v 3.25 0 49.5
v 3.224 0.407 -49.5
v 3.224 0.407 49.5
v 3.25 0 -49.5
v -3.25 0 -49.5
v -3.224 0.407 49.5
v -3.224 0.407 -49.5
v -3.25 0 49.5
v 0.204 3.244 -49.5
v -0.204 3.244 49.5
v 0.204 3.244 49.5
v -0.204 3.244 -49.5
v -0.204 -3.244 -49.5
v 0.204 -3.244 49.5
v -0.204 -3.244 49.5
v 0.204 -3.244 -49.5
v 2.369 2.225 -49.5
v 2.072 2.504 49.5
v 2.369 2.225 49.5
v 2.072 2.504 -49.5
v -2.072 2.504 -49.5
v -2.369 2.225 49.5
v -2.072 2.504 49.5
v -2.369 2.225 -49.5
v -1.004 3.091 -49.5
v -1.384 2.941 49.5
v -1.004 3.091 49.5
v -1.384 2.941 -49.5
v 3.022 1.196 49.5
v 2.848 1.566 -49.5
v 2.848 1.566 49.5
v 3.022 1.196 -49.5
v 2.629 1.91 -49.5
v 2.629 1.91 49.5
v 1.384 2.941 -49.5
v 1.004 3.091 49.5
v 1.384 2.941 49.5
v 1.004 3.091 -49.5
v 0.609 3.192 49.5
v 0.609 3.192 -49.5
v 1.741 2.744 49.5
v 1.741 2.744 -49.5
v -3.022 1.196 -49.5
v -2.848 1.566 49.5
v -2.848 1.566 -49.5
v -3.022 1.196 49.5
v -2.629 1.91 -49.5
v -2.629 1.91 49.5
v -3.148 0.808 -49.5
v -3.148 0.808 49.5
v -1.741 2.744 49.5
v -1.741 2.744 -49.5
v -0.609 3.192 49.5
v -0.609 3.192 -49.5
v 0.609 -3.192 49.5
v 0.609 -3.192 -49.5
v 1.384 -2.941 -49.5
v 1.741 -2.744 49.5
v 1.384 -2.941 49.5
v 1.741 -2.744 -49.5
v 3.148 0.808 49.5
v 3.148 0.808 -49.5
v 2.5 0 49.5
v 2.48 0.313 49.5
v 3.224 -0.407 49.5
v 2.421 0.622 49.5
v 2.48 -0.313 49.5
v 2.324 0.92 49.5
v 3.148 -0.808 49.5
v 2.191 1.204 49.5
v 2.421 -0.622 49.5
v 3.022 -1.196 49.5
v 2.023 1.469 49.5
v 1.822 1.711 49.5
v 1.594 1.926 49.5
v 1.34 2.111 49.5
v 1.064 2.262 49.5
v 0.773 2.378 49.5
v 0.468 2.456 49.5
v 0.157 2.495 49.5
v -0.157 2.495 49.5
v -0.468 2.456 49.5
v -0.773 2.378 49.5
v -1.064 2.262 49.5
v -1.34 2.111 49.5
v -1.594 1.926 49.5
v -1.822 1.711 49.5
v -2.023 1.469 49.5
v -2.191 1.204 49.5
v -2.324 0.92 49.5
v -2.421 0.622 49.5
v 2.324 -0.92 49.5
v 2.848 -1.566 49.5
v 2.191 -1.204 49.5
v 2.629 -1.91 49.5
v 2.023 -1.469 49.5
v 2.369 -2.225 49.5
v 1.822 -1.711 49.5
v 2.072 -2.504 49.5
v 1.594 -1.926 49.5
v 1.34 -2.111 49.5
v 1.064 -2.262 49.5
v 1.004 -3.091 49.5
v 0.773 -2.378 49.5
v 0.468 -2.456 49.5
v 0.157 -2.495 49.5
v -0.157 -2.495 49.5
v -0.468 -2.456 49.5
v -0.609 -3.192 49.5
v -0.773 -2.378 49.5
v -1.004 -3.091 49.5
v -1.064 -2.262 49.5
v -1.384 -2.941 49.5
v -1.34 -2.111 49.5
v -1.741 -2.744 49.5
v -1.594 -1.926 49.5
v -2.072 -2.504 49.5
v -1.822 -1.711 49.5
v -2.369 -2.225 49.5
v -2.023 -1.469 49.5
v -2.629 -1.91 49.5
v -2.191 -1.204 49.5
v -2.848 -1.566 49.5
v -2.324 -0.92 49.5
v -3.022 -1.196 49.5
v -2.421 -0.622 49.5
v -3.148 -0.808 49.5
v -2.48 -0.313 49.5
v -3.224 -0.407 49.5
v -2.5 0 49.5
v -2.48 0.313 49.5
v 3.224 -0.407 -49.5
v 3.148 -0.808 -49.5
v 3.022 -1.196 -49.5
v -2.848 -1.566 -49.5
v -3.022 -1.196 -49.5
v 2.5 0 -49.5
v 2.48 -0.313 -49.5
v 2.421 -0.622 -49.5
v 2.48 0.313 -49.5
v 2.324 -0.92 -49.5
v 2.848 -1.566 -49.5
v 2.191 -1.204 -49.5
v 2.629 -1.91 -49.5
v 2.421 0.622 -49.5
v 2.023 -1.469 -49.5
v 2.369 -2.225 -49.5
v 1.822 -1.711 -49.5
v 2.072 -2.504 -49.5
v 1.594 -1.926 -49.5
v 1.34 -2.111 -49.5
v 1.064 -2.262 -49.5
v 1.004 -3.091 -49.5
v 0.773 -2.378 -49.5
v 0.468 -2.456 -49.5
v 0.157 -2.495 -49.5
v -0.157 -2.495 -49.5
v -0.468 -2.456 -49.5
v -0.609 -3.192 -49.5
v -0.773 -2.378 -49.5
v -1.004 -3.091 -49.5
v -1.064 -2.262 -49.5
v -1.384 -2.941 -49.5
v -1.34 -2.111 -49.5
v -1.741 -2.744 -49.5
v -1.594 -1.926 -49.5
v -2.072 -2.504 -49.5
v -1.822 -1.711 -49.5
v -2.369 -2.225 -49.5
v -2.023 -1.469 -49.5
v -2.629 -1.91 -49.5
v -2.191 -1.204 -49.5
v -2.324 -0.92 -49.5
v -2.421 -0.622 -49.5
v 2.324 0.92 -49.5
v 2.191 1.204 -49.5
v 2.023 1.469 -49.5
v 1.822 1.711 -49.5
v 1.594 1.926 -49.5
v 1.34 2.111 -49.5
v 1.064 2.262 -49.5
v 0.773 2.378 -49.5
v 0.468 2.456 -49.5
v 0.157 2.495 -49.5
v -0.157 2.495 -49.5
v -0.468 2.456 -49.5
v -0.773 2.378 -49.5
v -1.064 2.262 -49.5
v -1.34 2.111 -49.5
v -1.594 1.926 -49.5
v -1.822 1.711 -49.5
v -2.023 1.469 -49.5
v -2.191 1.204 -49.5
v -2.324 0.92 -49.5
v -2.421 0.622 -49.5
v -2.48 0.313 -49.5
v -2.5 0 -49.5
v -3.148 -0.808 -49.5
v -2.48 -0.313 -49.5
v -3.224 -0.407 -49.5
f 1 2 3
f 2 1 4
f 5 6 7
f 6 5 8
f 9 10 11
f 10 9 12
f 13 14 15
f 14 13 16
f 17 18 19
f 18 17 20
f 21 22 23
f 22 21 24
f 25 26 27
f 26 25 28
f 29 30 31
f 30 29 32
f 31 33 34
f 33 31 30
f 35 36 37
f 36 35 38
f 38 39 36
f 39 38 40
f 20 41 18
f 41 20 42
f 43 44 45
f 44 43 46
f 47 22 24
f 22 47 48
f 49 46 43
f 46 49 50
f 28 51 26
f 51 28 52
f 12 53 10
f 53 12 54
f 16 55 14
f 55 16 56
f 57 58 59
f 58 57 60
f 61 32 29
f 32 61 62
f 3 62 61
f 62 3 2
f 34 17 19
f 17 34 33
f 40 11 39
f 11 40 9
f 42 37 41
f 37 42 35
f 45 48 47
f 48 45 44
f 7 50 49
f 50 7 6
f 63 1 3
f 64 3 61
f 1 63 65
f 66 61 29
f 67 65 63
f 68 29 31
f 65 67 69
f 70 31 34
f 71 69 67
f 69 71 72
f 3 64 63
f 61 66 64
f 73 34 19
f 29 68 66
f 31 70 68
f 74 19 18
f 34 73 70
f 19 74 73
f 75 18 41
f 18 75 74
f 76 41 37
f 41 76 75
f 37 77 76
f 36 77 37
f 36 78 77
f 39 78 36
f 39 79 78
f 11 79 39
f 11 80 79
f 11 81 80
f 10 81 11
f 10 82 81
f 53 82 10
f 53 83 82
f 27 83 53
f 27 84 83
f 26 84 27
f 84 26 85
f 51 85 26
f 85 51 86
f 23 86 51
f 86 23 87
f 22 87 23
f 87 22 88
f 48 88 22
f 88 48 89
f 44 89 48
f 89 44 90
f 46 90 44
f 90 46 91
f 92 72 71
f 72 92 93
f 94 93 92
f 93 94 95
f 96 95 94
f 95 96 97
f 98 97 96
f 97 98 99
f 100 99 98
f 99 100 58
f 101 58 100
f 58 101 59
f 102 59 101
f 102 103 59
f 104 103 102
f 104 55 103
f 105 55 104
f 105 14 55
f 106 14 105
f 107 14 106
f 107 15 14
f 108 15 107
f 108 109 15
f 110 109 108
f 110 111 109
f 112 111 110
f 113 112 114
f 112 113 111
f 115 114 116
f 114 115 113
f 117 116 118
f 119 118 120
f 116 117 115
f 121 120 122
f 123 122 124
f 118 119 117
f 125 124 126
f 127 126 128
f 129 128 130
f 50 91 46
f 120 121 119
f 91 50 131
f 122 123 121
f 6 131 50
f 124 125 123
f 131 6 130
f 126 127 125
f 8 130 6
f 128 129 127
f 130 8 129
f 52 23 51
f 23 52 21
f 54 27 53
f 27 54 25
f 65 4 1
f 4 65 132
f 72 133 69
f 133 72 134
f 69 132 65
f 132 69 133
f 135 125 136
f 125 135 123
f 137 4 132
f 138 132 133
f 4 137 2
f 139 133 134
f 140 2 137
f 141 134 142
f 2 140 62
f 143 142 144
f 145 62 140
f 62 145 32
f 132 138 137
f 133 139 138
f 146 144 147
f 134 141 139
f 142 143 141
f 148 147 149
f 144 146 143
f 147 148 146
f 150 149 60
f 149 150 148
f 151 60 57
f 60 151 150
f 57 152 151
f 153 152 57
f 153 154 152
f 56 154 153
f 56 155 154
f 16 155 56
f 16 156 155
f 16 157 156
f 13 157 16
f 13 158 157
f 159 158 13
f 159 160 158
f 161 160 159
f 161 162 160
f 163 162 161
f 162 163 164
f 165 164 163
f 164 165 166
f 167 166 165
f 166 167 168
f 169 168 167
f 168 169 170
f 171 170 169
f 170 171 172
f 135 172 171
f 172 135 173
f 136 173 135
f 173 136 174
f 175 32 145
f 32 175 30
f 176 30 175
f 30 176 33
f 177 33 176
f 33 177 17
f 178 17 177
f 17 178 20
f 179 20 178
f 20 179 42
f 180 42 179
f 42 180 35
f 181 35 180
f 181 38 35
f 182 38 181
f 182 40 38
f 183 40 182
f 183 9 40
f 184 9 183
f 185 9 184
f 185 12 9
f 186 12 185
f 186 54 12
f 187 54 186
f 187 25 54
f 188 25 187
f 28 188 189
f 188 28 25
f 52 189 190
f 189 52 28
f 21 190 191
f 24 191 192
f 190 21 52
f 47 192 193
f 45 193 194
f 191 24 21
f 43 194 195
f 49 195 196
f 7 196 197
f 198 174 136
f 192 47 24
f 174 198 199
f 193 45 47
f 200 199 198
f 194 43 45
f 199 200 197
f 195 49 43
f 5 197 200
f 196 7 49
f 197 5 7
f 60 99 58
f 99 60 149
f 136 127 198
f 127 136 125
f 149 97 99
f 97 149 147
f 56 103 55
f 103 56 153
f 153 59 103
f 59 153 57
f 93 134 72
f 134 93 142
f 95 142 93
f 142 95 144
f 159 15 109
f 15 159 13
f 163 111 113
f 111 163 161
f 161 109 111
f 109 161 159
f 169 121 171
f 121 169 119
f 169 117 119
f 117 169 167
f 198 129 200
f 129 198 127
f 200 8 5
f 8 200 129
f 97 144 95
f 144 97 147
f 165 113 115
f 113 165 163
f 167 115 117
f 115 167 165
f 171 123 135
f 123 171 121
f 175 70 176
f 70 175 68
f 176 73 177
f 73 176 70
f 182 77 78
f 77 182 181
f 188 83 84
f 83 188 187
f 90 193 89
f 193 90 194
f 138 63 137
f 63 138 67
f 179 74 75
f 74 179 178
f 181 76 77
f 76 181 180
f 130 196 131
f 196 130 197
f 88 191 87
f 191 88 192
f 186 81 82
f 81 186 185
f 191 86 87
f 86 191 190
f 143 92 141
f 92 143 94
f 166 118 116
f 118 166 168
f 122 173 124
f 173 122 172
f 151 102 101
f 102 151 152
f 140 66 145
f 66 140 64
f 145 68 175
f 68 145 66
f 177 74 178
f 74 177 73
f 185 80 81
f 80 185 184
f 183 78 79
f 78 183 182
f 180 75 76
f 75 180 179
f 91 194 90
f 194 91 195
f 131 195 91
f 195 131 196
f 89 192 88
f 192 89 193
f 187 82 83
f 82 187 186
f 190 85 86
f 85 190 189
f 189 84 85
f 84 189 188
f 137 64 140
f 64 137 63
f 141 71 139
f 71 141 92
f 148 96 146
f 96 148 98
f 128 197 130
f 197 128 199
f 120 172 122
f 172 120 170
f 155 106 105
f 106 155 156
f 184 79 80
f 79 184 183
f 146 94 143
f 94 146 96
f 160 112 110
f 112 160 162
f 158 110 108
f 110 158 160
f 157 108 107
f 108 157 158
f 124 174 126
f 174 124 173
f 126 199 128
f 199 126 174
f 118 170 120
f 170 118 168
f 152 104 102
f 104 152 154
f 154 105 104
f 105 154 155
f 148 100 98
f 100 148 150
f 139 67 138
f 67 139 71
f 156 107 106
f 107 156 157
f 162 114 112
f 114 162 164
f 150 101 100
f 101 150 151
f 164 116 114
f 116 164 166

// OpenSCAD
$fn = 50;


difference() {
	union() {
		translate(v = [0, 0, -49.5000000000]) {
			cylinder(h = 99, r = 3.2500000000);
		}
	}
	union() {
		translate(v = [0, 0, -100.0000000000]) {
			cylinder(h = 200, r = 2.5000000000);
		}
	}
}
